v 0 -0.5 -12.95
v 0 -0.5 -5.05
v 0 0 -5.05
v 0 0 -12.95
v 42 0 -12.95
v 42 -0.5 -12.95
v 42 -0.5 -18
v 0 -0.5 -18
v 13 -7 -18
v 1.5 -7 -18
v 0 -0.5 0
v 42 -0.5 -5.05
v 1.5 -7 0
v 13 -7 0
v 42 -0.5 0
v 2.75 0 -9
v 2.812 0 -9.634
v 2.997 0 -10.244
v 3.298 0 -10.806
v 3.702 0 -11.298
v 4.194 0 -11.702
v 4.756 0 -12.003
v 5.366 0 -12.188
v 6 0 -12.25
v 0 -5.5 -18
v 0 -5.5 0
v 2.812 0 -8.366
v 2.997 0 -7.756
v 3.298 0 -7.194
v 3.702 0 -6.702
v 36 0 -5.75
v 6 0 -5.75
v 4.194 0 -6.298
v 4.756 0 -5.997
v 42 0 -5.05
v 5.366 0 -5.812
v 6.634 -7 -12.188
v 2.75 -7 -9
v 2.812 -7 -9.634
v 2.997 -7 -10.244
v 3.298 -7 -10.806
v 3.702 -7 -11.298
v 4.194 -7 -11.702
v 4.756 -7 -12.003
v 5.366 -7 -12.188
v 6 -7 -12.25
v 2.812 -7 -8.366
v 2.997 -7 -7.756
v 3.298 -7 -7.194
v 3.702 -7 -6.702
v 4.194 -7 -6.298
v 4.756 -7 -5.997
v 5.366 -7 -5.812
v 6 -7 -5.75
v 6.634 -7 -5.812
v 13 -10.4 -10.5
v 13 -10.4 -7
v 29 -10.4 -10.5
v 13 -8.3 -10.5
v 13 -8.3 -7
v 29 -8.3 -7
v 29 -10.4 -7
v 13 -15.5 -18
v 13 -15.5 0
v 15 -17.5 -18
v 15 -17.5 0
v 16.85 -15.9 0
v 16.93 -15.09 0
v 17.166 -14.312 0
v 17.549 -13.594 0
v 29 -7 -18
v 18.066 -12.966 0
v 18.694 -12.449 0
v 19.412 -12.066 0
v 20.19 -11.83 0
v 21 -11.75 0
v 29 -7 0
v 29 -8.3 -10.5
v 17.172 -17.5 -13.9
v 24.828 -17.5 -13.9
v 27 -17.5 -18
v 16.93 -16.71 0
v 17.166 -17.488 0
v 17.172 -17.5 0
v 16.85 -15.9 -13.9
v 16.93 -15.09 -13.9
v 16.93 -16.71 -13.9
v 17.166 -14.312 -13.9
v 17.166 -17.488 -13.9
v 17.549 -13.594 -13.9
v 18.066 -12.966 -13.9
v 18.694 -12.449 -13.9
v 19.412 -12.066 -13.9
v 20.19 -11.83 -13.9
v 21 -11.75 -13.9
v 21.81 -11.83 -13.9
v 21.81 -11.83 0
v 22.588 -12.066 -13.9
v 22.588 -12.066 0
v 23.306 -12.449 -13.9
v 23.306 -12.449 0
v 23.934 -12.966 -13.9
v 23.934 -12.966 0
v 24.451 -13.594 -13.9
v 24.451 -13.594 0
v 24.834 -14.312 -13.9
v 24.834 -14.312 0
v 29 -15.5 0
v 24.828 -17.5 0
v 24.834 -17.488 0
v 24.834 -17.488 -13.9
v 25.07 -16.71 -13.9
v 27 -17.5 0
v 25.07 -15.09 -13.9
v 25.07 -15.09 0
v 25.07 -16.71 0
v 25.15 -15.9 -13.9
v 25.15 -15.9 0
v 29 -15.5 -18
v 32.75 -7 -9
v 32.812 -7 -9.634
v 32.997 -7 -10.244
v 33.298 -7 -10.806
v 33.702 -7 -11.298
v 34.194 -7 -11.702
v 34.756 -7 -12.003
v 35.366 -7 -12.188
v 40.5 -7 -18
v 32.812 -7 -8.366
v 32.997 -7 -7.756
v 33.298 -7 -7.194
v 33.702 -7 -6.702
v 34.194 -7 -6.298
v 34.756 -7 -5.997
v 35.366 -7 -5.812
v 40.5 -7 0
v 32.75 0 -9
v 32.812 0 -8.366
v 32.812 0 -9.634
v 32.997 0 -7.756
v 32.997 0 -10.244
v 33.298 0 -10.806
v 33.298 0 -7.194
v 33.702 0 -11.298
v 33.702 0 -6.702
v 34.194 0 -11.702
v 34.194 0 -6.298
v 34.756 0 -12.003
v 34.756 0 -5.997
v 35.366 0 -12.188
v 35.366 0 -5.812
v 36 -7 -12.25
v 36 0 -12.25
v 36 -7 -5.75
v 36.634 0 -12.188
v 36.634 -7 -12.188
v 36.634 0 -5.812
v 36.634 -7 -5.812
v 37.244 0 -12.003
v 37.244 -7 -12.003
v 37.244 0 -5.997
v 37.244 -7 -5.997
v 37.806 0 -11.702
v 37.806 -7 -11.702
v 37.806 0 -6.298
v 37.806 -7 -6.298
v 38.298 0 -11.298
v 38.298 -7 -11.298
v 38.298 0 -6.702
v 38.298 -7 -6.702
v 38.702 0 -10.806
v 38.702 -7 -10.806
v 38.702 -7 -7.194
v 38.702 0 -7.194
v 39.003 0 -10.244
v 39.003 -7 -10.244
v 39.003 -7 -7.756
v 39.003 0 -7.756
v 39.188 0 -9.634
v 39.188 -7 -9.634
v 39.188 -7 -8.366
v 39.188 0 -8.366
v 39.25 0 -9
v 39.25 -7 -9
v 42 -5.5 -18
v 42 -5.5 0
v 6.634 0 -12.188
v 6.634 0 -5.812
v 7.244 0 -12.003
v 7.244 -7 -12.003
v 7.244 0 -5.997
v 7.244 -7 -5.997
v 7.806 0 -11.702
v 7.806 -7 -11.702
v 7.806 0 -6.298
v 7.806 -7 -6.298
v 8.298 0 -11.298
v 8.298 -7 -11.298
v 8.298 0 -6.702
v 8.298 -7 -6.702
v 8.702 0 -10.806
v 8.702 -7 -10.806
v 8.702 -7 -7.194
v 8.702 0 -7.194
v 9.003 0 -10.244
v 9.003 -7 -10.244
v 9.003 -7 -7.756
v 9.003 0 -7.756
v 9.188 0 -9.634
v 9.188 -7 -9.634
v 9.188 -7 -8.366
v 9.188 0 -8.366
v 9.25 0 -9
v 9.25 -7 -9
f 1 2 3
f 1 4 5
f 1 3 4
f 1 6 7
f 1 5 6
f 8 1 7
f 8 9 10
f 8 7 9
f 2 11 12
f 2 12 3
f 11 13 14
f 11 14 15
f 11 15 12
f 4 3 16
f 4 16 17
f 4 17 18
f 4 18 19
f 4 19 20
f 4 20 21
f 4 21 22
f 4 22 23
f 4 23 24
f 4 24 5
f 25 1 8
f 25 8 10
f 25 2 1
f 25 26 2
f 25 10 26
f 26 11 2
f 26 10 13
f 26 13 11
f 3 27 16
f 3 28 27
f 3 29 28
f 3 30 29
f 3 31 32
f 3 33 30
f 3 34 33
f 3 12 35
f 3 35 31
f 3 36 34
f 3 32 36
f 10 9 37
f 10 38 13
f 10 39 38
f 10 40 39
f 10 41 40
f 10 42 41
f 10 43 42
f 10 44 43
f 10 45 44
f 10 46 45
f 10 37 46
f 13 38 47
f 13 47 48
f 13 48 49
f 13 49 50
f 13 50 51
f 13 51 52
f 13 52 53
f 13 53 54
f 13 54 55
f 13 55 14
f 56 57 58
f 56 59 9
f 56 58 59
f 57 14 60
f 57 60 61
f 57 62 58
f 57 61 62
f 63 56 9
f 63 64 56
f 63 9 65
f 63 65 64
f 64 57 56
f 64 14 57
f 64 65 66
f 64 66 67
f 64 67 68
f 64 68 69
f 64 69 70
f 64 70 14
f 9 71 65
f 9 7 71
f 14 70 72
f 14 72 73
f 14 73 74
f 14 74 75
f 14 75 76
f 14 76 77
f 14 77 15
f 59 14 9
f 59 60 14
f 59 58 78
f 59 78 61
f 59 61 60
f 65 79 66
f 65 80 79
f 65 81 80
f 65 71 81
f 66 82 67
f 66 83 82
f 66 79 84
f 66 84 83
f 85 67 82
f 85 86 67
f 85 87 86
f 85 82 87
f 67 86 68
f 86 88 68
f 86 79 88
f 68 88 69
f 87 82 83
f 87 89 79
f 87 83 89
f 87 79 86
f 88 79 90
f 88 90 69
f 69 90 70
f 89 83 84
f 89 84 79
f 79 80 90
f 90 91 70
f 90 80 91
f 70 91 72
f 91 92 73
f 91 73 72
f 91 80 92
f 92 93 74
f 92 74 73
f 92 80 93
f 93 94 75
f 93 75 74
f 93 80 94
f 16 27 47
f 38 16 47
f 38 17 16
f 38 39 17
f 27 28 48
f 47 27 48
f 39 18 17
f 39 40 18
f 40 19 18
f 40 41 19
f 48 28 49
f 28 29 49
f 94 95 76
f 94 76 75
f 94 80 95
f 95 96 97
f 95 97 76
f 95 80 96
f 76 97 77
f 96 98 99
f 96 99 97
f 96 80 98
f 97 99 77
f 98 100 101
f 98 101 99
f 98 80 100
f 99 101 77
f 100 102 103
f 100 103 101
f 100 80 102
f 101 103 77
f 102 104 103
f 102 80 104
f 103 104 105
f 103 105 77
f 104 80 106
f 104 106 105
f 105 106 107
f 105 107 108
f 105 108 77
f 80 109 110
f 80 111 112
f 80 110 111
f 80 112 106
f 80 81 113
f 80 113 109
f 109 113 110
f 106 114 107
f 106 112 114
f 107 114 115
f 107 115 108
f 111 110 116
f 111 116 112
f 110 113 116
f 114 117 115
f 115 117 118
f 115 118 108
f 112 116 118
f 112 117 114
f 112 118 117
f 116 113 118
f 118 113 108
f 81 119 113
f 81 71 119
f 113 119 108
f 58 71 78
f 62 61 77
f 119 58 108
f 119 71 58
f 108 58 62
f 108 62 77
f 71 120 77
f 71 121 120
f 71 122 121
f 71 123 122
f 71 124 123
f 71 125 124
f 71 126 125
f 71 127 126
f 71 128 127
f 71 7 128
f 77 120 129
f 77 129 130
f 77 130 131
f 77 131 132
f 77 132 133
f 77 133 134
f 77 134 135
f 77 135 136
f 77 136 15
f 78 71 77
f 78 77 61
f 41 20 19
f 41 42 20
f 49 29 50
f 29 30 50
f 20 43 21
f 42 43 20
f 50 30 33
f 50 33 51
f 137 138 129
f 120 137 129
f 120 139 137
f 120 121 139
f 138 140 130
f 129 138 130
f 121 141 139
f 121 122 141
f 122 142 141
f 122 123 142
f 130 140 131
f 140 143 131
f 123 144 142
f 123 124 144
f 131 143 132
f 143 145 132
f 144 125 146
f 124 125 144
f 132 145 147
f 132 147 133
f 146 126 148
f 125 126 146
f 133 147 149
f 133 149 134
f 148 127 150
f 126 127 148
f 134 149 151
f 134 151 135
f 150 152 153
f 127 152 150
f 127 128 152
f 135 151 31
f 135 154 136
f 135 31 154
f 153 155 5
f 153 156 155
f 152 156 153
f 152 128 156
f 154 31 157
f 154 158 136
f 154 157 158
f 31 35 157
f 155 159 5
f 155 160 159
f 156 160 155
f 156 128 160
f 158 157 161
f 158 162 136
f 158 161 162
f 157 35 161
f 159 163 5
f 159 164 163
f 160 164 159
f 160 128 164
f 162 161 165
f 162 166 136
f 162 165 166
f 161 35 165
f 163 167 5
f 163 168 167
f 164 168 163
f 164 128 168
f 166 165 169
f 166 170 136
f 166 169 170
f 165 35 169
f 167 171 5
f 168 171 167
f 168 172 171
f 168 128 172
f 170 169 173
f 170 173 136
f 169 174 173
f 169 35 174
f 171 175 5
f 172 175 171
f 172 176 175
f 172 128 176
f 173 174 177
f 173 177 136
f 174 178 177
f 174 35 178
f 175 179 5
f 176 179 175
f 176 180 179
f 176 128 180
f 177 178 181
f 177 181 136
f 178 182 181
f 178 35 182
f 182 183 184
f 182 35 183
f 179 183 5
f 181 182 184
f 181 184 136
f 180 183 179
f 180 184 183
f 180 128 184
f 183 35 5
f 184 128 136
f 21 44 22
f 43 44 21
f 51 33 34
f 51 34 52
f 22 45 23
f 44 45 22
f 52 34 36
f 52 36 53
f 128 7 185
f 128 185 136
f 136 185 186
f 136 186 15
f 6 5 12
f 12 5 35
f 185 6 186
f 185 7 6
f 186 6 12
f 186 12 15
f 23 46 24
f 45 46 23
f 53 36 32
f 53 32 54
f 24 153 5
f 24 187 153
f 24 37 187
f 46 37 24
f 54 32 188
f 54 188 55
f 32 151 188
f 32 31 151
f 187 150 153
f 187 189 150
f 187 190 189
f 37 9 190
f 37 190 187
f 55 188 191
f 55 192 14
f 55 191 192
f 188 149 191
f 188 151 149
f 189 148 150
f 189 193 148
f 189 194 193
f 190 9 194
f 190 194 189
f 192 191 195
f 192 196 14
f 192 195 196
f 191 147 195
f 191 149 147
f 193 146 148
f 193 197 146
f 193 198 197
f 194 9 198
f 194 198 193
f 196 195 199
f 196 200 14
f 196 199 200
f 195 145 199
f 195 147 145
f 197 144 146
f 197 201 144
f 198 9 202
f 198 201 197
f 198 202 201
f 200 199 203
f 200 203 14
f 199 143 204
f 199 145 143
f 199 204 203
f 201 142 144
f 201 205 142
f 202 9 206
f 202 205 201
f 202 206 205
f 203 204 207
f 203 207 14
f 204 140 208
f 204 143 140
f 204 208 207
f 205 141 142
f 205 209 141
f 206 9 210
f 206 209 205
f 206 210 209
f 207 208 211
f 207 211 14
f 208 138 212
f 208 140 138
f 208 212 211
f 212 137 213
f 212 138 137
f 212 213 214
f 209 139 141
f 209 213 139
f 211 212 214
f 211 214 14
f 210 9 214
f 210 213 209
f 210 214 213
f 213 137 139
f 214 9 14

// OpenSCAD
// file: ../configuration.scad
// Layer high for the printing [mm]
layer_height = 0.25; //Slic3r->Print Settings->Layers and perimeters->Layer height

// Spare for the screws heads [mm]
spare = 1;
// M6 screw diameter [mm]
M6_head_diameter = 13+spare;
//M6_head_diameter = 10.6+spare;
//M6_head_diameter = 12+spare;

// M6 head high (for hiding it) [mm]
M6_head_height = 4;
//M6_head_height = 3.6;
//M6_head_height = 4.5;

// Screws and rods diameters
M8_smooth_rod_diameter = 8.3;
M8_smooth_rod_diameter_catch = 8.8;
M6_diameter = 6.6;
M6_diamater_horizontal = 6.5;
M3_diameter = 3.7;
M3_diameter_horizontal = 3.5;

// Nuts diameters
M3_nut_diameter = 7.0;
M3_nut_diameter_horizontal = 6.7;

// ALU profile parameters
ALU_cut_width = 7.9;
ALU_cut_width_horizontal = 7.7;

// Motors length/depth (for axes Z and Y)
//SX17-1003LQFE (recommended for the Z axis)
motor_length = 29.5;
//SX17-1003 (recommended for the Z axis)
//motor_length = 34;
//SX17-1005
//motor_length = 40;
//SX17-0905 - this motor is too high - the Z end stop holder has to be adjusted
//motor_length = 48;

// Extrusion width [mm]
extrusion_width = 0.66; //Slic3r->Print Settings->Advanced->Default extrusion width

/// Belt type ******************************************************

// GT2 
belt_tooth_distance = 2;
belt_tooth_ratio = 0.5;

/*
// T2.5
belt_tooth_distance = 2.5;
belt_tooth_ratio = 0.68;
*/
// main file
// RebeliX
//
// y rod holder
// GNU GPL v3
// Martin Neruda <neruda@reprap4u.cz>
// http://www.reprap4u.cz

include <../configuration.scad>

width = 42;
height = 18;
base_thickness = 7;
thickness = 17.5;
rod_diameter = M8_smooth_rod_diameter;

module y_rod_holder_base(){
  cube([width,base_thickness,height]);
  translate([width/2-8,0,0]) cube([16,thickness,height]);
}

module y_cuts(){
  // ALU hole
  translate([width+0.1,0.5,(height/2)+ALU_cut_width/2]) rotate([0,0,180]) cube([50,2,10]);
  translate([width+0.1,0.5,0]) rotate([0,0,180]) cube([50,2,(height/2)-ALU_cut_width/2]);
  
  // M8 rod hole
  translate([width/2,thickness - 1.6,-0.1]) cylinder(h=(height/2)+5,r=rod_diameter/2,$fn = 32);
  // Bevelled edges
  translate([width/2-8,thickness-2,-0.1]) rotate([0,0,45]) cube([10,10,20]);
  translate([width/2+8,thickness-2,-0.1]) rotate([0,0,45]) cube([10,10,20]);
  
  translate([0,base_thickness-1.5,-0.1]) rotate([0,0,45]) cube([10,10,20]);
  translate([width,base_thickness-1.5,-0.1]) rotate([0,0,45]) cube([10,10,20]);
  // M6 screws holes
  translate([6,-0.1,height/2]) rotate([-90,0,0]) cylinder(h=10,r=M6_diamater_horizontal/2,$fn = 32);
  translate([width-6,-0.1,height/2]) rotate([-90,0,0]) cylinder(h=10,r=M6_diamater_horizontal/2,$fn = 32);
  // Zip tie hole
  translate([5,base_thickness + 1.3,(height/2)-2])  cube([30,2.1,3.5]);
}

rotate([180,0,0])
    difference(){
        y_rod_holder_base();
        y_cuts();
    }	
